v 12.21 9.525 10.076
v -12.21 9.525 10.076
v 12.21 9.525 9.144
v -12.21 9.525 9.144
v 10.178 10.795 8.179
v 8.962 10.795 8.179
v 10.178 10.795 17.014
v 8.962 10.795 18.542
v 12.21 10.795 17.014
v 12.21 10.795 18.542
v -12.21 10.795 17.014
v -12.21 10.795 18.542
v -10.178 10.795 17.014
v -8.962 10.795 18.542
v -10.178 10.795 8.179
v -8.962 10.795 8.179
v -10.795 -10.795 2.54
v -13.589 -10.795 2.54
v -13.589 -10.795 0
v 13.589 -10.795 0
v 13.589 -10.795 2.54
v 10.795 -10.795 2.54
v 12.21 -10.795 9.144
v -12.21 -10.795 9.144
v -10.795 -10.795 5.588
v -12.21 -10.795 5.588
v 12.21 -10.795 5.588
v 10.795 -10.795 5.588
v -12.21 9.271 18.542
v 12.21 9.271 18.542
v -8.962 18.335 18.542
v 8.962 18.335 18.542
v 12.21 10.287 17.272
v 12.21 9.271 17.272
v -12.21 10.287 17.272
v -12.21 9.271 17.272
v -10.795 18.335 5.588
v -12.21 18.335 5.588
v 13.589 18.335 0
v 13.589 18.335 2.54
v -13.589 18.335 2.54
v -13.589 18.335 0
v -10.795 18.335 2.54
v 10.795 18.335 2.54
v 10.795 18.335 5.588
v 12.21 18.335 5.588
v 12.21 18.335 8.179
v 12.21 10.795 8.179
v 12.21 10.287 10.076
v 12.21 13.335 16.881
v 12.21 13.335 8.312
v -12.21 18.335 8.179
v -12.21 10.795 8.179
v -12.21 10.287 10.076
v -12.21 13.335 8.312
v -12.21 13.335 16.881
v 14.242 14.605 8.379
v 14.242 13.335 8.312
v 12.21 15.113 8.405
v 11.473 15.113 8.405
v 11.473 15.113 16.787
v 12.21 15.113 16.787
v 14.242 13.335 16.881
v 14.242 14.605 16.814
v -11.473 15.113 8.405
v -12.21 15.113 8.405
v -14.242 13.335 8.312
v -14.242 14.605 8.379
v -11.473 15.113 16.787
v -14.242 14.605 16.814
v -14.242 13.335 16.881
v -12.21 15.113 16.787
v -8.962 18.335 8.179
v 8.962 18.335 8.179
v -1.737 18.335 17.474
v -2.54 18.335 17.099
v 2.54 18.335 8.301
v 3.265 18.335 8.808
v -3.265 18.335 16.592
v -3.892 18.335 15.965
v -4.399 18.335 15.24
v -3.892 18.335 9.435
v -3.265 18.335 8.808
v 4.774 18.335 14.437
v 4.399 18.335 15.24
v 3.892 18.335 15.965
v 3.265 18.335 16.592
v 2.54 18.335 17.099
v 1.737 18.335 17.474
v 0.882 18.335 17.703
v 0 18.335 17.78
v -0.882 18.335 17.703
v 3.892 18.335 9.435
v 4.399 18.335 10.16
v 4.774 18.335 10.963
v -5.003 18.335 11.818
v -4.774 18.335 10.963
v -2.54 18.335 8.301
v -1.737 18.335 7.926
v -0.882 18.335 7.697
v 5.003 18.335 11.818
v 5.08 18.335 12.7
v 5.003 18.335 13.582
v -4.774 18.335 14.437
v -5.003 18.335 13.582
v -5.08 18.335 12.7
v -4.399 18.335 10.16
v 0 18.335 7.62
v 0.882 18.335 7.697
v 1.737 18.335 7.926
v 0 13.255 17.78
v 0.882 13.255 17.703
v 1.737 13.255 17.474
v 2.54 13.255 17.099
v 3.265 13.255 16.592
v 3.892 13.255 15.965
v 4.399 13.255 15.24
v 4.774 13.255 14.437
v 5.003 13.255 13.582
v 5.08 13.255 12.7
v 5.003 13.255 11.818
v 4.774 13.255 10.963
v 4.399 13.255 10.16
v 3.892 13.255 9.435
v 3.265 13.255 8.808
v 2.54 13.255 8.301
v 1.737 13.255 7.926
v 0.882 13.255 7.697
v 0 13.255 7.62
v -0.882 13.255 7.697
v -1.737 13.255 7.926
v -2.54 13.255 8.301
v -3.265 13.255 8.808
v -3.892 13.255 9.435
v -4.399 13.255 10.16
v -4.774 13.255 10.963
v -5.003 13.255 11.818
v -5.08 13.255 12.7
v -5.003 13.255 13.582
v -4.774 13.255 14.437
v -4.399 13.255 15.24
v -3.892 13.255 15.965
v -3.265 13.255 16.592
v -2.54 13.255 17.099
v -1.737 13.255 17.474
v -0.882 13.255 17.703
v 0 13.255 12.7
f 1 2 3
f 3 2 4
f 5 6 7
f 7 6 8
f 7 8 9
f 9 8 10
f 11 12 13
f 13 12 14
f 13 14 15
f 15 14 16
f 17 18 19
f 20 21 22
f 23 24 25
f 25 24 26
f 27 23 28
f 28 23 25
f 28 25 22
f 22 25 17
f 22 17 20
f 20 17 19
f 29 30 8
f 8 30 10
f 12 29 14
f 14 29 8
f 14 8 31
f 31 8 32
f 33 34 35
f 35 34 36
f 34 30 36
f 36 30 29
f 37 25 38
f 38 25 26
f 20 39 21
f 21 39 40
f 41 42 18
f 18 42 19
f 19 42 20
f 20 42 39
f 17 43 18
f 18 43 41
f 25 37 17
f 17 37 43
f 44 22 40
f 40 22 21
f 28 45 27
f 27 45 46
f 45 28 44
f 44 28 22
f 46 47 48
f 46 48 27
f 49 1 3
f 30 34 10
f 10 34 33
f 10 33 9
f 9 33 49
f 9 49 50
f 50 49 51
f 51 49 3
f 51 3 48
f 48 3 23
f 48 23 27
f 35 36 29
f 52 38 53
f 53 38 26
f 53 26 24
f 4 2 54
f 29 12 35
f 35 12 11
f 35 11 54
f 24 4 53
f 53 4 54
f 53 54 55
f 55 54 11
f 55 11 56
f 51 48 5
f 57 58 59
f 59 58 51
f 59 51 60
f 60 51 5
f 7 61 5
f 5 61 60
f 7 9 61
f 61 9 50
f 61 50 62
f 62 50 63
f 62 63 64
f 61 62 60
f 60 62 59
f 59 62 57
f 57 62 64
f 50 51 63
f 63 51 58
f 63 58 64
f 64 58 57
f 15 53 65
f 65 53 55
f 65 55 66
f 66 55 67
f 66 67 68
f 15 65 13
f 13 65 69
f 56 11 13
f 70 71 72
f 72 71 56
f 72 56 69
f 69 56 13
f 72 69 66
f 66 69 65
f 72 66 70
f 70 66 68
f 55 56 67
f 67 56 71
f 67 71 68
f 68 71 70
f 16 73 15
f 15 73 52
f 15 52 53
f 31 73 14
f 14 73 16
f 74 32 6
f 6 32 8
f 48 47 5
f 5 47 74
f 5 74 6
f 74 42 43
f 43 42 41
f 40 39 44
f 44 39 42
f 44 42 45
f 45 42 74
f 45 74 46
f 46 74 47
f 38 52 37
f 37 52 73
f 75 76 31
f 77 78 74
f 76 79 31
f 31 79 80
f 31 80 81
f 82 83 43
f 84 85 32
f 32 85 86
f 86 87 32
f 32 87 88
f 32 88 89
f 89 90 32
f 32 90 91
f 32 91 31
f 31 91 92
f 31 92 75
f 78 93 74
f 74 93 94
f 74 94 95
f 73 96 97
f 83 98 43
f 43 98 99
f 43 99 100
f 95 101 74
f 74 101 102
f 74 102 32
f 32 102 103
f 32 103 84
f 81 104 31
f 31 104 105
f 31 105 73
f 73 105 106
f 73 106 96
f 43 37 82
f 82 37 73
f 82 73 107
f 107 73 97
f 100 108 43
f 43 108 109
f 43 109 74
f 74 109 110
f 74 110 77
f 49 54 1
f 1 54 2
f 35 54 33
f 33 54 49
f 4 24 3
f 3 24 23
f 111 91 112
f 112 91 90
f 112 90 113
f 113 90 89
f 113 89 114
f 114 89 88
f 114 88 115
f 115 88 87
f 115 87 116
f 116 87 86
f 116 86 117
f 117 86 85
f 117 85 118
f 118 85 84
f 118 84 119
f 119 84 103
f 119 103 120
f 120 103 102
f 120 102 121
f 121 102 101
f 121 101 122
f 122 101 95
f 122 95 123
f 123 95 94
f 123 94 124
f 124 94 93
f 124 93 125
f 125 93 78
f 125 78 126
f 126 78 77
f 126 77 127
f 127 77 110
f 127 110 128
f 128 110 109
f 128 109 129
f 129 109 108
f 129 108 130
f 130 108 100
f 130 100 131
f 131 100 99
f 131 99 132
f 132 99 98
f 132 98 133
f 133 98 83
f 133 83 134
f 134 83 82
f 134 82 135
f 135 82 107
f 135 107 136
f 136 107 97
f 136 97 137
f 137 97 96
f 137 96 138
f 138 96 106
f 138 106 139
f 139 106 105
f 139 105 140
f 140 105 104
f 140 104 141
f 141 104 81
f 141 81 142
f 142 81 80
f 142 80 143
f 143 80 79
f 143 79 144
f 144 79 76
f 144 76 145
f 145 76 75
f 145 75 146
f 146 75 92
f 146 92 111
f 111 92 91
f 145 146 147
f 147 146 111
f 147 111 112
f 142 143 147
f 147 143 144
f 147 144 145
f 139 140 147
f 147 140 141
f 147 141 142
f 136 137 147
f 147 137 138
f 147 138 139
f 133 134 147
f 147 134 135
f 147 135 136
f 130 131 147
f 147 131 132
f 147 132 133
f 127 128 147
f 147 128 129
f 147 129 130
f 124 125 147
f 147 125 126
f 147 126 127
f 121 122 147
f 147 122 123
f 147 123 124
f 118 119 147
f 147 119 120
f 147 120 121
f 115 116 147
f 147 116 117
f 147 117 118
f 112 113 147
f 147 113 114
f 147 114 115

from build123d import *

# Parameters (mm, degrees)
SKETCH2_W                       = 27.178
SKETCH2_H                       = 21.59
INITIAL_EXTRUDE_DEPTH           = 6.35
SKETCH3_W                       = 27.178
SKETCH3_H                       = 1.27
INTIAL_EXTRUDE_HORIZONTAL_DEPTH = 12.192
SKETCH4_W                       = 27.178
SKETCH4_H                       = 1.27
SLIGHT_EXTRUDE_VERTICAL_DEPTH   = 0.254
SKETCH5_W                       = 3.048
SKETCH5_H                       = 21.59
CUT_EXTRUDE1_DEPTH              = 2.794
CUT_EXTRUDE2_REACH              = 33.537
SKETCH6_W                       = 1.379153921
SKETCH6_H                       = 12.954
SNAP_START                      = 11.473246079
SNAP_HOOK2_DEPTH                = 0.7366
SNAP_START_2                    = 8.31223189
SNAP_HOOK2_2_DEPTH              = 8.568362063
SNAP_START_3                    = 8.179116131
SNAP_HOOK2_3_DEPTH              = 8.834593581
SNAP_START_4                    = 9
SNAP_HOOK2_4_DEPTH              = 6
BOSS_EXTRUDE1_DEPTH             = 7.54
SKETCH8_W                       = 24.419692158
SKETCH8_H                       = 7.195933706
CUT_EXTRUDE3_DEPTH              = 0.762
SKETCH9_W                       = 24.419692158
SKETCH9_H                       = 20.32
BOSS_EXTRUDE2_DEPTH             = 2.794
SKETCH10_R                      = 5.08
CUT_EXTRUDE4_DEPTH              = 5.08


with BuildPart() as part:
    # Sketch2 → Initial Extrude (new body)
    with BuildSketch(Plane.XY):
        Rectangle(SKETCH2_W, SKETCH2_H)
    extrude(amount=INITIAL_EXTRUDE_DEPTH)

    # Sketch3 → Intial Extrude horizontal (add)
    with BuildSketch(Plane.XY.offset(6.35)):
        with Locations((0, 10.16)):
            Rectangle(SKETCH3_W, SKETCH3_H)
    extrude(amount=INTIAL_EXTRUDE_HORIZONTAL_DEPTH)

    # Sketch4 → Slight Extrude vertical (add)
    with BuildSketch(Plane.XZ.offset(-9.525)):
        with Locations((0, 17.907)):
            Rectangle(SKETCH4_W, SKETCH4_H)
    extrude(amount=SLIGHT_EXTRUDE_VERTICAL_DEPTH)

    # Sketch5 → Cut-Extrude1 (cut)
    with BuildSketch(Plane.ZY.offset(13.589)):
        with Locations((4.064, 0)):
            Rectangle(SKETCH5_W, SKETCH5_H)
    cut_extrude1 = extrude(amount=-CUT_EXTRUDE1_DEPTH, mode=Mode.SUBTRACT)

    # Mirror3: Cut-Extrude1 across plane
    add(cut_extrude1.mirror(Plane(origin=(0, 0, 0), x_dir=(0, 0, 1), z_dir=(1, 0, 0))), mode=Mode.SUBTRACT)

    # Sketch6 → Cut-Extrude2 (cut, up to next)
    with BuildSketch(Plane(origin=(0, 10.795, 0), x_dir=(1, 0, 0), z_dir=(0, 1, 0)), mode=Mode.PRIVATE) as cut_extrude2_sk1:
        with Locations((12.89942304, -12.065)):
            Rectangle(SKETCH6_W, SKETCH6_H)
    cut_extrude2_tool1 = extrude(cut_extrude2_sk1.sketch, amount=-CUT_EXTRUDE2_REACH, mode=Mode.PRIVATE) & part.part
    cut_extrude2 = cut_extrude2_tool1.solids().sort_by_distance((12.899423, 10.795, 12.065))[0]
    add(cut_extrude2, mode=Mode.SUBTRACT)

    # Mirror7: Cut-Extrude2 across plane
    add(cut_extrude2.mirror(Plane(origin=(0, 0, 0), x_dir=(0, 0, 1), z_dir=(1, 0, 0))), mode=Mode.SUBTRACT)

    # Snap Hook2: read off the stored shape, not the designer's step
    # Snap Hook2 outline → Snap Hook2 (add)
    with BuildSketch(Plane.YZ.offset(SNAP_START)):
        Polygon((10.795, 17.013709712), (10.795, 8.179116131), (15.113, 8.405412922), (15.113, 16.787412922), align=None)
    snap_hook2 = extrude(amount=SNAP_HOOK2_DEPTH)

    # Snap Hook2 2 outline → Snap Hook2 2 (add)
    with BuildSketch(Plane.XY.offset(SNAP_START_2)):
        Polygon((11.473246079, 10.795), (11.473246079, 15.113), (10.177846079, 10.795), align=None)
        Polygon((12.209846079, 15.113), (12.209846079, 13.335), (14.241846079, 13.335), (14.241846079, 14.605), align=None)
    snap_hook2_2 = extrude(amount=SNAP_HOOK2_2_DEPTH)

    # Snap Hook2 3 outline → Snap Hook2 3 (add)
    with BuildSketch(Plane.XY.offset(SNAP_START_3)):
        Polygon((11.473246079, 10.795), (11.473246079, 15.113), (10.177846079, 10.795), align=None)
    snap_hook2_3 = extrude(amount=SNAP_HOOK2_3_DEPTH)

    # Snap Hook2 4 outline → Snap Hook2 4 (cut)
    with BuildSketch(Plane.YZ.offset(SNAP_START_4)):
        Polygon((10.795, 8.179116131), (17, 8.179116131), (17, 8.504306402), (15.113, 8.405412922), align=None)
        Polygon((15.113, 16.787412922), (17, 16.688519443), (17, 17.013709712), (10.795, 17.013709712), align=None)
    snap_hook2_4 = extrude(amount=SNAP_HOOK2_4_DEPTH, mode=Mode.SUBTRACT)

    # Mirror6: Snap Hook2, Snap Hook2 2, Snap Hook2 3, Snap Hook2 4 across plane
    add(snap_hook2.mirror(Plane(origin=(0, 0, 0), x_dir=(0, 0, 1), z_dir=(1, 0, 0))))
    add(snap_hook2_2.mirror(Plane(origin=(0, 0, 0), x_dir=(0, 0, 1), z_dir=(1, 0, 0))))
    add(snap_hook2_3.mirror(Plane(origin=(0, 0, 0), x_dir=(0, 0, 1), z_dir=(1, 0, 0))))
    add(snap_hook2_4.mirror(Plane(origin=(0, 0, 0), x_dir=(0, 0, 1), z_dir=(1, 0, 0))), mode=Mode.SUBTRACT)

    # Sketch7 → Boss-Extrude1 (add)
    with BuildSketch(Plane(origin=(0, 10.795, 0), x_dir=(1, 0, 0), z_dir=(0, 1, 0))):
        Polygon((-8.962447439, -8.179116131), (-8.962447439, -18.542), (8.962447439, -18.542), (8.962447439, -8.179116131), (9, -8.179116131), (10.177846079, -8.179116131), (12.209846079, -8.179116131), (12.209846079, -5.588), (10.795, -5.588), (10.795, -2.54), (13.589, -2.54), (13.589, 0), (-13.589, 0), (-13.589, -2.54), (-10.795, -2.54), (-10.795, -5.588), (-12.209846079, -5.588), (-12.209846079, -8.179116131), (-10.177846079, -8.179116131), (-9, -8.179116131), align=None)
    extrude(amount=BOSS_EXTRUDE1_DEPTH)

    # Sketch8 → Cut-Extrude3 (cut)
    with BuildSketch(Plane.XZ.offset(-9.525)):
        with Locations((0, 13.674033147)):
            Rectangle(SKETCH8_W, SKETCH8_H)
    extrude(amount=-CUT_EXTRUDE3_DEPTH, mode=Mode.SUBTRACT)

    # Sketch9 → Boss-Extrude2 (add)
    with BuildSketch(Plane.XY.offset(6.35)):
        with Locations((0, -0.635)):
            Rectangle(SKETCH9_W, SKETCH9_H)
    extrude(amount=BOSS_EXTRUDE2_DEPTH)

    # Sketch10 → Cut-Extrude4 (cut)
    with BuildSketch(Plane(origin=(0, 18.335, 0), x_dir=(1, 0, 0), z_dir=(0, 1, 0))):
        with Locations(Location((0, -12.7, 0), (0, 0, 270))):
            Circle(SKETCH10_R)
    extrude(amount=-CUT_EXTRUDE4_DEPTH, mode=Mode.SUBTRACT)


solid = part.part
